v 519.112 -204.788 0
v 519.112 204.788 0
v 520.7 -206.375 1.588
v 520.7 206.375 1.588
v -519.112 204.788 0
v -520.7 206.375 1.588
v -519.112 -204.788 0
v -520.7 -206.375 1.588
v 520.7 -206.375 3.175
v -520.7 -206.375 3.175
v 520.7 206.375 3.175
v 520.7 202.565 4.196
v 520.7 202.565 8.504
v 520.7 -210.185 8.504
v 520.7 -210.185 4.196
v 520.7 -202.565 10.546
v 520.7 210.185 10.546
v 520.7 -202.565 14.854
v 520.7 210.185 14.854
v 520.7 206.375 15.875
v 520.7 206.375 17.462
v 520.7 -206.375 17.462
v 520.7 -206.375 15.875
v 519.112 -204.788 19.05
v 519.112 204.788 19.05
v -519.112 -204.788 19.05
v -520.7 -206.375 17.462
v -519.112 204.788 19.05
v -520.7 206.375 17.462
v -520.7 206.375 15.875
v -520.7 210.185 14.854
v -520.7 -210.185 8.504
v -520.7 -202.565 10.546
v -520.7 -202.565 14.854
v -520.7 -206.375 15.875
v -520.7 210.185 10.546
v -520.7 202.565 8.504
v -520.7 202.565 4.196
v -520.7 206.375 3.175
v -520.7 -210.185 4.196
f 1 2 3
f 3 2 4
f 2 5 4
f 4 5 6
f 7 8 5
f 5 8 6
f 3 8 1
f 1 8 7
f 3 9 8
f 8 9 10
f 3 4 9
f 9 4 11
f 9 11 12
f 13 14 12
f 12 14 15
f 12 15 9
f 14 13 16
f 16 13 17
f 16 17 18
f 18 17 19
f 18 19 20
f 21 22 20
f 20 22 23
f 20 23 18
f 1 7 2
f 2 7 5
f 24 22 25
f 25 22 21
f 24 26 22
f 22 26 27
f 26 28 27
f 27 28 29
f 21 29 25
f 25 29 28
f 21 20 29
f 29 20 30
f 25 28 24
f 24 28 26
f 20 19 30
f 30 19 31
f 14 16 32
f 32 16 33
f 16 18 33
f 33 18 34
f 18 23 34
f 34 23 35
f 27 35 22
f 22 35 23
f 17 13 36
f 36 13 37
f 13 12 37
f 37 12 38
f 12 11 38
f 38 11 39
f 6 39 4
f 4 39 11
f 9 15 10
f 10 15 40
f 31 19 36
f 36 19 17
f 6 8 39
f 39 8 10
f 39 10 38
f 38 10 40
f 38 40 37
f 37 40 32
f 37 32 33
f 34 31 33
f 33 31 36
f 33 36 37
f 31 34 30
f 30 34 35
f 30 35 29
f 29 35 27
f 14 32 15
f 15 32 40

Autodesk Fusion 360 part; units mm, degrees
sketch "Sketch1" plane through (0, 0, 0) normal (0, 0, 1) x (1, 0, 0)
  line L0 (-520.7, 210.185) -> (520.7, 210.185)
  line L1 (520.7, 210.185) -> (520.7, -210.185)
  line L2 (520.7, -210.185) -> (-520.7, -210.185)
  line L3 (-520.7, -210.185) -> (-520.7, 210.185)
  line L4 (-520.7, 210.185) -> (520.7, -210.185) construction
  line L5 (520.7, 210.185) -> (-520.7, -210.185) construction
  dimension "d1" = 420.37
  dimension "d2" = 1041.4
extrude "Extrude1" add sketch "Sketch1" along normal blind 19.05
sketch "Sketch3" plane through (520.7, 0, 0) normal (1, 0, 0) x (0, 1, 0)
  line L0 (-210.185, 0) -> (210.185, 0)
  line L1 (210.185, 0) -> (210.185, 19.05)
  line L2 (210.185, 19.05) -> (-210.185, 19.05)
  line L3 (-210.185, 19.05) -> (-210.185, 0)
  line L4 (206.375, 0) -> (206.375, 3.175)
  line L5 (206.375, 15.875) -> (206.375, 19.05)
  line L6 (206.375, 3.175) -> (202.565, 4.1959)
  line L7 (202.565, 4.1959) -> (202.565, 8.5041)
  line L8 (202.565, 8.5041) -> (206.375, 9.525)
  line L9 (210.185, 10.5459) -> (210.185, 14.8541) construction
  line L10 (210.185, 14.8541) -> (206.375, 15.875)
  line L11 (206.375, 9.525) -> (210.185, 10.5459)
  line L12 (206.375, 0) -> (210.185, 0)
  line L13 (206.375, 19.05) -> (210.185, 19.05)
  line L14 (210.185, 19.05) -> (210.185, 14.8541)
  line L15 (210.185, 0) -> (210.185, 10.5459)
  line L16 (-202.565, 14.8541) -> (-202.565, 10.5459)
  line L17 (-210.185, 0) -> (-210.185, 4.1959)
  line L18 (-206.375, 19.05) -> (-206.375, 15.875)
  line L19 (-206.375, 9.525) -> (-210.185, 8.5041)
  line L20 (-206.375, 3.175) -> (-206.375, 0)
  line L21 (-206.375, 15.875) -> (-202.565, 14.8541)
  line L22 (-206.375, 19.05) -> (-210.185, 19.05)
  line L23 (-206.375, 0) -> (-210.185, 0)
  line L24 (-210.185, 4.1959) -> (-206.375, 3.175)
  line L25 (-210.185, 19.05) -> (-210.185, 8.5041)
  line L26 (-202.565, 10.5459) -> (-206.375, 9.525)
  line L27 (-210.185, 8.5041) -> (-210.185, 4.1959) construction
  point P0 (210.185, 0)
  dimension "d25" = 105
  dimension "d27" = 19.05
  dimension "d29" = 6.35
  dimension "d30" = 6.35
  dimension "d31" = 3.81
  dimension "d32" = 3.81
  dimension "d33" = 3.81
  dimension "d36" = 105
  dimension "d37" = 19.05
  dimension "d38" = 6.35
  dimension "d39" = 6.35
  dimension "d40" = 3.81
  dimension "d41" = 3.81
  dimension "d42" = 3.81
extrude "Extrude3" cut sketch "Sketch3" against normal blind 1041.4 contours L0 L3 L17 L20 L23 L24 | L0 L1 L4 L6 L7 L8 L11 L12 L15 | L2 L3 L16 L18 L19 L21 L22 L25 L26 | L1 L2 L5 L10 L13 L14
chamfer "Chamfer1" distance 1.5875 angle 45 8 edges at (-520.7, 0, 19.05) (520.7, 0, 19.05) (-520.7, 0, 0) (520.7, 0, 0) (0, 206.375, 19.05) (0, 206.375, 0) (0, -206.375, 19.05) (0, -206.375, 0)
